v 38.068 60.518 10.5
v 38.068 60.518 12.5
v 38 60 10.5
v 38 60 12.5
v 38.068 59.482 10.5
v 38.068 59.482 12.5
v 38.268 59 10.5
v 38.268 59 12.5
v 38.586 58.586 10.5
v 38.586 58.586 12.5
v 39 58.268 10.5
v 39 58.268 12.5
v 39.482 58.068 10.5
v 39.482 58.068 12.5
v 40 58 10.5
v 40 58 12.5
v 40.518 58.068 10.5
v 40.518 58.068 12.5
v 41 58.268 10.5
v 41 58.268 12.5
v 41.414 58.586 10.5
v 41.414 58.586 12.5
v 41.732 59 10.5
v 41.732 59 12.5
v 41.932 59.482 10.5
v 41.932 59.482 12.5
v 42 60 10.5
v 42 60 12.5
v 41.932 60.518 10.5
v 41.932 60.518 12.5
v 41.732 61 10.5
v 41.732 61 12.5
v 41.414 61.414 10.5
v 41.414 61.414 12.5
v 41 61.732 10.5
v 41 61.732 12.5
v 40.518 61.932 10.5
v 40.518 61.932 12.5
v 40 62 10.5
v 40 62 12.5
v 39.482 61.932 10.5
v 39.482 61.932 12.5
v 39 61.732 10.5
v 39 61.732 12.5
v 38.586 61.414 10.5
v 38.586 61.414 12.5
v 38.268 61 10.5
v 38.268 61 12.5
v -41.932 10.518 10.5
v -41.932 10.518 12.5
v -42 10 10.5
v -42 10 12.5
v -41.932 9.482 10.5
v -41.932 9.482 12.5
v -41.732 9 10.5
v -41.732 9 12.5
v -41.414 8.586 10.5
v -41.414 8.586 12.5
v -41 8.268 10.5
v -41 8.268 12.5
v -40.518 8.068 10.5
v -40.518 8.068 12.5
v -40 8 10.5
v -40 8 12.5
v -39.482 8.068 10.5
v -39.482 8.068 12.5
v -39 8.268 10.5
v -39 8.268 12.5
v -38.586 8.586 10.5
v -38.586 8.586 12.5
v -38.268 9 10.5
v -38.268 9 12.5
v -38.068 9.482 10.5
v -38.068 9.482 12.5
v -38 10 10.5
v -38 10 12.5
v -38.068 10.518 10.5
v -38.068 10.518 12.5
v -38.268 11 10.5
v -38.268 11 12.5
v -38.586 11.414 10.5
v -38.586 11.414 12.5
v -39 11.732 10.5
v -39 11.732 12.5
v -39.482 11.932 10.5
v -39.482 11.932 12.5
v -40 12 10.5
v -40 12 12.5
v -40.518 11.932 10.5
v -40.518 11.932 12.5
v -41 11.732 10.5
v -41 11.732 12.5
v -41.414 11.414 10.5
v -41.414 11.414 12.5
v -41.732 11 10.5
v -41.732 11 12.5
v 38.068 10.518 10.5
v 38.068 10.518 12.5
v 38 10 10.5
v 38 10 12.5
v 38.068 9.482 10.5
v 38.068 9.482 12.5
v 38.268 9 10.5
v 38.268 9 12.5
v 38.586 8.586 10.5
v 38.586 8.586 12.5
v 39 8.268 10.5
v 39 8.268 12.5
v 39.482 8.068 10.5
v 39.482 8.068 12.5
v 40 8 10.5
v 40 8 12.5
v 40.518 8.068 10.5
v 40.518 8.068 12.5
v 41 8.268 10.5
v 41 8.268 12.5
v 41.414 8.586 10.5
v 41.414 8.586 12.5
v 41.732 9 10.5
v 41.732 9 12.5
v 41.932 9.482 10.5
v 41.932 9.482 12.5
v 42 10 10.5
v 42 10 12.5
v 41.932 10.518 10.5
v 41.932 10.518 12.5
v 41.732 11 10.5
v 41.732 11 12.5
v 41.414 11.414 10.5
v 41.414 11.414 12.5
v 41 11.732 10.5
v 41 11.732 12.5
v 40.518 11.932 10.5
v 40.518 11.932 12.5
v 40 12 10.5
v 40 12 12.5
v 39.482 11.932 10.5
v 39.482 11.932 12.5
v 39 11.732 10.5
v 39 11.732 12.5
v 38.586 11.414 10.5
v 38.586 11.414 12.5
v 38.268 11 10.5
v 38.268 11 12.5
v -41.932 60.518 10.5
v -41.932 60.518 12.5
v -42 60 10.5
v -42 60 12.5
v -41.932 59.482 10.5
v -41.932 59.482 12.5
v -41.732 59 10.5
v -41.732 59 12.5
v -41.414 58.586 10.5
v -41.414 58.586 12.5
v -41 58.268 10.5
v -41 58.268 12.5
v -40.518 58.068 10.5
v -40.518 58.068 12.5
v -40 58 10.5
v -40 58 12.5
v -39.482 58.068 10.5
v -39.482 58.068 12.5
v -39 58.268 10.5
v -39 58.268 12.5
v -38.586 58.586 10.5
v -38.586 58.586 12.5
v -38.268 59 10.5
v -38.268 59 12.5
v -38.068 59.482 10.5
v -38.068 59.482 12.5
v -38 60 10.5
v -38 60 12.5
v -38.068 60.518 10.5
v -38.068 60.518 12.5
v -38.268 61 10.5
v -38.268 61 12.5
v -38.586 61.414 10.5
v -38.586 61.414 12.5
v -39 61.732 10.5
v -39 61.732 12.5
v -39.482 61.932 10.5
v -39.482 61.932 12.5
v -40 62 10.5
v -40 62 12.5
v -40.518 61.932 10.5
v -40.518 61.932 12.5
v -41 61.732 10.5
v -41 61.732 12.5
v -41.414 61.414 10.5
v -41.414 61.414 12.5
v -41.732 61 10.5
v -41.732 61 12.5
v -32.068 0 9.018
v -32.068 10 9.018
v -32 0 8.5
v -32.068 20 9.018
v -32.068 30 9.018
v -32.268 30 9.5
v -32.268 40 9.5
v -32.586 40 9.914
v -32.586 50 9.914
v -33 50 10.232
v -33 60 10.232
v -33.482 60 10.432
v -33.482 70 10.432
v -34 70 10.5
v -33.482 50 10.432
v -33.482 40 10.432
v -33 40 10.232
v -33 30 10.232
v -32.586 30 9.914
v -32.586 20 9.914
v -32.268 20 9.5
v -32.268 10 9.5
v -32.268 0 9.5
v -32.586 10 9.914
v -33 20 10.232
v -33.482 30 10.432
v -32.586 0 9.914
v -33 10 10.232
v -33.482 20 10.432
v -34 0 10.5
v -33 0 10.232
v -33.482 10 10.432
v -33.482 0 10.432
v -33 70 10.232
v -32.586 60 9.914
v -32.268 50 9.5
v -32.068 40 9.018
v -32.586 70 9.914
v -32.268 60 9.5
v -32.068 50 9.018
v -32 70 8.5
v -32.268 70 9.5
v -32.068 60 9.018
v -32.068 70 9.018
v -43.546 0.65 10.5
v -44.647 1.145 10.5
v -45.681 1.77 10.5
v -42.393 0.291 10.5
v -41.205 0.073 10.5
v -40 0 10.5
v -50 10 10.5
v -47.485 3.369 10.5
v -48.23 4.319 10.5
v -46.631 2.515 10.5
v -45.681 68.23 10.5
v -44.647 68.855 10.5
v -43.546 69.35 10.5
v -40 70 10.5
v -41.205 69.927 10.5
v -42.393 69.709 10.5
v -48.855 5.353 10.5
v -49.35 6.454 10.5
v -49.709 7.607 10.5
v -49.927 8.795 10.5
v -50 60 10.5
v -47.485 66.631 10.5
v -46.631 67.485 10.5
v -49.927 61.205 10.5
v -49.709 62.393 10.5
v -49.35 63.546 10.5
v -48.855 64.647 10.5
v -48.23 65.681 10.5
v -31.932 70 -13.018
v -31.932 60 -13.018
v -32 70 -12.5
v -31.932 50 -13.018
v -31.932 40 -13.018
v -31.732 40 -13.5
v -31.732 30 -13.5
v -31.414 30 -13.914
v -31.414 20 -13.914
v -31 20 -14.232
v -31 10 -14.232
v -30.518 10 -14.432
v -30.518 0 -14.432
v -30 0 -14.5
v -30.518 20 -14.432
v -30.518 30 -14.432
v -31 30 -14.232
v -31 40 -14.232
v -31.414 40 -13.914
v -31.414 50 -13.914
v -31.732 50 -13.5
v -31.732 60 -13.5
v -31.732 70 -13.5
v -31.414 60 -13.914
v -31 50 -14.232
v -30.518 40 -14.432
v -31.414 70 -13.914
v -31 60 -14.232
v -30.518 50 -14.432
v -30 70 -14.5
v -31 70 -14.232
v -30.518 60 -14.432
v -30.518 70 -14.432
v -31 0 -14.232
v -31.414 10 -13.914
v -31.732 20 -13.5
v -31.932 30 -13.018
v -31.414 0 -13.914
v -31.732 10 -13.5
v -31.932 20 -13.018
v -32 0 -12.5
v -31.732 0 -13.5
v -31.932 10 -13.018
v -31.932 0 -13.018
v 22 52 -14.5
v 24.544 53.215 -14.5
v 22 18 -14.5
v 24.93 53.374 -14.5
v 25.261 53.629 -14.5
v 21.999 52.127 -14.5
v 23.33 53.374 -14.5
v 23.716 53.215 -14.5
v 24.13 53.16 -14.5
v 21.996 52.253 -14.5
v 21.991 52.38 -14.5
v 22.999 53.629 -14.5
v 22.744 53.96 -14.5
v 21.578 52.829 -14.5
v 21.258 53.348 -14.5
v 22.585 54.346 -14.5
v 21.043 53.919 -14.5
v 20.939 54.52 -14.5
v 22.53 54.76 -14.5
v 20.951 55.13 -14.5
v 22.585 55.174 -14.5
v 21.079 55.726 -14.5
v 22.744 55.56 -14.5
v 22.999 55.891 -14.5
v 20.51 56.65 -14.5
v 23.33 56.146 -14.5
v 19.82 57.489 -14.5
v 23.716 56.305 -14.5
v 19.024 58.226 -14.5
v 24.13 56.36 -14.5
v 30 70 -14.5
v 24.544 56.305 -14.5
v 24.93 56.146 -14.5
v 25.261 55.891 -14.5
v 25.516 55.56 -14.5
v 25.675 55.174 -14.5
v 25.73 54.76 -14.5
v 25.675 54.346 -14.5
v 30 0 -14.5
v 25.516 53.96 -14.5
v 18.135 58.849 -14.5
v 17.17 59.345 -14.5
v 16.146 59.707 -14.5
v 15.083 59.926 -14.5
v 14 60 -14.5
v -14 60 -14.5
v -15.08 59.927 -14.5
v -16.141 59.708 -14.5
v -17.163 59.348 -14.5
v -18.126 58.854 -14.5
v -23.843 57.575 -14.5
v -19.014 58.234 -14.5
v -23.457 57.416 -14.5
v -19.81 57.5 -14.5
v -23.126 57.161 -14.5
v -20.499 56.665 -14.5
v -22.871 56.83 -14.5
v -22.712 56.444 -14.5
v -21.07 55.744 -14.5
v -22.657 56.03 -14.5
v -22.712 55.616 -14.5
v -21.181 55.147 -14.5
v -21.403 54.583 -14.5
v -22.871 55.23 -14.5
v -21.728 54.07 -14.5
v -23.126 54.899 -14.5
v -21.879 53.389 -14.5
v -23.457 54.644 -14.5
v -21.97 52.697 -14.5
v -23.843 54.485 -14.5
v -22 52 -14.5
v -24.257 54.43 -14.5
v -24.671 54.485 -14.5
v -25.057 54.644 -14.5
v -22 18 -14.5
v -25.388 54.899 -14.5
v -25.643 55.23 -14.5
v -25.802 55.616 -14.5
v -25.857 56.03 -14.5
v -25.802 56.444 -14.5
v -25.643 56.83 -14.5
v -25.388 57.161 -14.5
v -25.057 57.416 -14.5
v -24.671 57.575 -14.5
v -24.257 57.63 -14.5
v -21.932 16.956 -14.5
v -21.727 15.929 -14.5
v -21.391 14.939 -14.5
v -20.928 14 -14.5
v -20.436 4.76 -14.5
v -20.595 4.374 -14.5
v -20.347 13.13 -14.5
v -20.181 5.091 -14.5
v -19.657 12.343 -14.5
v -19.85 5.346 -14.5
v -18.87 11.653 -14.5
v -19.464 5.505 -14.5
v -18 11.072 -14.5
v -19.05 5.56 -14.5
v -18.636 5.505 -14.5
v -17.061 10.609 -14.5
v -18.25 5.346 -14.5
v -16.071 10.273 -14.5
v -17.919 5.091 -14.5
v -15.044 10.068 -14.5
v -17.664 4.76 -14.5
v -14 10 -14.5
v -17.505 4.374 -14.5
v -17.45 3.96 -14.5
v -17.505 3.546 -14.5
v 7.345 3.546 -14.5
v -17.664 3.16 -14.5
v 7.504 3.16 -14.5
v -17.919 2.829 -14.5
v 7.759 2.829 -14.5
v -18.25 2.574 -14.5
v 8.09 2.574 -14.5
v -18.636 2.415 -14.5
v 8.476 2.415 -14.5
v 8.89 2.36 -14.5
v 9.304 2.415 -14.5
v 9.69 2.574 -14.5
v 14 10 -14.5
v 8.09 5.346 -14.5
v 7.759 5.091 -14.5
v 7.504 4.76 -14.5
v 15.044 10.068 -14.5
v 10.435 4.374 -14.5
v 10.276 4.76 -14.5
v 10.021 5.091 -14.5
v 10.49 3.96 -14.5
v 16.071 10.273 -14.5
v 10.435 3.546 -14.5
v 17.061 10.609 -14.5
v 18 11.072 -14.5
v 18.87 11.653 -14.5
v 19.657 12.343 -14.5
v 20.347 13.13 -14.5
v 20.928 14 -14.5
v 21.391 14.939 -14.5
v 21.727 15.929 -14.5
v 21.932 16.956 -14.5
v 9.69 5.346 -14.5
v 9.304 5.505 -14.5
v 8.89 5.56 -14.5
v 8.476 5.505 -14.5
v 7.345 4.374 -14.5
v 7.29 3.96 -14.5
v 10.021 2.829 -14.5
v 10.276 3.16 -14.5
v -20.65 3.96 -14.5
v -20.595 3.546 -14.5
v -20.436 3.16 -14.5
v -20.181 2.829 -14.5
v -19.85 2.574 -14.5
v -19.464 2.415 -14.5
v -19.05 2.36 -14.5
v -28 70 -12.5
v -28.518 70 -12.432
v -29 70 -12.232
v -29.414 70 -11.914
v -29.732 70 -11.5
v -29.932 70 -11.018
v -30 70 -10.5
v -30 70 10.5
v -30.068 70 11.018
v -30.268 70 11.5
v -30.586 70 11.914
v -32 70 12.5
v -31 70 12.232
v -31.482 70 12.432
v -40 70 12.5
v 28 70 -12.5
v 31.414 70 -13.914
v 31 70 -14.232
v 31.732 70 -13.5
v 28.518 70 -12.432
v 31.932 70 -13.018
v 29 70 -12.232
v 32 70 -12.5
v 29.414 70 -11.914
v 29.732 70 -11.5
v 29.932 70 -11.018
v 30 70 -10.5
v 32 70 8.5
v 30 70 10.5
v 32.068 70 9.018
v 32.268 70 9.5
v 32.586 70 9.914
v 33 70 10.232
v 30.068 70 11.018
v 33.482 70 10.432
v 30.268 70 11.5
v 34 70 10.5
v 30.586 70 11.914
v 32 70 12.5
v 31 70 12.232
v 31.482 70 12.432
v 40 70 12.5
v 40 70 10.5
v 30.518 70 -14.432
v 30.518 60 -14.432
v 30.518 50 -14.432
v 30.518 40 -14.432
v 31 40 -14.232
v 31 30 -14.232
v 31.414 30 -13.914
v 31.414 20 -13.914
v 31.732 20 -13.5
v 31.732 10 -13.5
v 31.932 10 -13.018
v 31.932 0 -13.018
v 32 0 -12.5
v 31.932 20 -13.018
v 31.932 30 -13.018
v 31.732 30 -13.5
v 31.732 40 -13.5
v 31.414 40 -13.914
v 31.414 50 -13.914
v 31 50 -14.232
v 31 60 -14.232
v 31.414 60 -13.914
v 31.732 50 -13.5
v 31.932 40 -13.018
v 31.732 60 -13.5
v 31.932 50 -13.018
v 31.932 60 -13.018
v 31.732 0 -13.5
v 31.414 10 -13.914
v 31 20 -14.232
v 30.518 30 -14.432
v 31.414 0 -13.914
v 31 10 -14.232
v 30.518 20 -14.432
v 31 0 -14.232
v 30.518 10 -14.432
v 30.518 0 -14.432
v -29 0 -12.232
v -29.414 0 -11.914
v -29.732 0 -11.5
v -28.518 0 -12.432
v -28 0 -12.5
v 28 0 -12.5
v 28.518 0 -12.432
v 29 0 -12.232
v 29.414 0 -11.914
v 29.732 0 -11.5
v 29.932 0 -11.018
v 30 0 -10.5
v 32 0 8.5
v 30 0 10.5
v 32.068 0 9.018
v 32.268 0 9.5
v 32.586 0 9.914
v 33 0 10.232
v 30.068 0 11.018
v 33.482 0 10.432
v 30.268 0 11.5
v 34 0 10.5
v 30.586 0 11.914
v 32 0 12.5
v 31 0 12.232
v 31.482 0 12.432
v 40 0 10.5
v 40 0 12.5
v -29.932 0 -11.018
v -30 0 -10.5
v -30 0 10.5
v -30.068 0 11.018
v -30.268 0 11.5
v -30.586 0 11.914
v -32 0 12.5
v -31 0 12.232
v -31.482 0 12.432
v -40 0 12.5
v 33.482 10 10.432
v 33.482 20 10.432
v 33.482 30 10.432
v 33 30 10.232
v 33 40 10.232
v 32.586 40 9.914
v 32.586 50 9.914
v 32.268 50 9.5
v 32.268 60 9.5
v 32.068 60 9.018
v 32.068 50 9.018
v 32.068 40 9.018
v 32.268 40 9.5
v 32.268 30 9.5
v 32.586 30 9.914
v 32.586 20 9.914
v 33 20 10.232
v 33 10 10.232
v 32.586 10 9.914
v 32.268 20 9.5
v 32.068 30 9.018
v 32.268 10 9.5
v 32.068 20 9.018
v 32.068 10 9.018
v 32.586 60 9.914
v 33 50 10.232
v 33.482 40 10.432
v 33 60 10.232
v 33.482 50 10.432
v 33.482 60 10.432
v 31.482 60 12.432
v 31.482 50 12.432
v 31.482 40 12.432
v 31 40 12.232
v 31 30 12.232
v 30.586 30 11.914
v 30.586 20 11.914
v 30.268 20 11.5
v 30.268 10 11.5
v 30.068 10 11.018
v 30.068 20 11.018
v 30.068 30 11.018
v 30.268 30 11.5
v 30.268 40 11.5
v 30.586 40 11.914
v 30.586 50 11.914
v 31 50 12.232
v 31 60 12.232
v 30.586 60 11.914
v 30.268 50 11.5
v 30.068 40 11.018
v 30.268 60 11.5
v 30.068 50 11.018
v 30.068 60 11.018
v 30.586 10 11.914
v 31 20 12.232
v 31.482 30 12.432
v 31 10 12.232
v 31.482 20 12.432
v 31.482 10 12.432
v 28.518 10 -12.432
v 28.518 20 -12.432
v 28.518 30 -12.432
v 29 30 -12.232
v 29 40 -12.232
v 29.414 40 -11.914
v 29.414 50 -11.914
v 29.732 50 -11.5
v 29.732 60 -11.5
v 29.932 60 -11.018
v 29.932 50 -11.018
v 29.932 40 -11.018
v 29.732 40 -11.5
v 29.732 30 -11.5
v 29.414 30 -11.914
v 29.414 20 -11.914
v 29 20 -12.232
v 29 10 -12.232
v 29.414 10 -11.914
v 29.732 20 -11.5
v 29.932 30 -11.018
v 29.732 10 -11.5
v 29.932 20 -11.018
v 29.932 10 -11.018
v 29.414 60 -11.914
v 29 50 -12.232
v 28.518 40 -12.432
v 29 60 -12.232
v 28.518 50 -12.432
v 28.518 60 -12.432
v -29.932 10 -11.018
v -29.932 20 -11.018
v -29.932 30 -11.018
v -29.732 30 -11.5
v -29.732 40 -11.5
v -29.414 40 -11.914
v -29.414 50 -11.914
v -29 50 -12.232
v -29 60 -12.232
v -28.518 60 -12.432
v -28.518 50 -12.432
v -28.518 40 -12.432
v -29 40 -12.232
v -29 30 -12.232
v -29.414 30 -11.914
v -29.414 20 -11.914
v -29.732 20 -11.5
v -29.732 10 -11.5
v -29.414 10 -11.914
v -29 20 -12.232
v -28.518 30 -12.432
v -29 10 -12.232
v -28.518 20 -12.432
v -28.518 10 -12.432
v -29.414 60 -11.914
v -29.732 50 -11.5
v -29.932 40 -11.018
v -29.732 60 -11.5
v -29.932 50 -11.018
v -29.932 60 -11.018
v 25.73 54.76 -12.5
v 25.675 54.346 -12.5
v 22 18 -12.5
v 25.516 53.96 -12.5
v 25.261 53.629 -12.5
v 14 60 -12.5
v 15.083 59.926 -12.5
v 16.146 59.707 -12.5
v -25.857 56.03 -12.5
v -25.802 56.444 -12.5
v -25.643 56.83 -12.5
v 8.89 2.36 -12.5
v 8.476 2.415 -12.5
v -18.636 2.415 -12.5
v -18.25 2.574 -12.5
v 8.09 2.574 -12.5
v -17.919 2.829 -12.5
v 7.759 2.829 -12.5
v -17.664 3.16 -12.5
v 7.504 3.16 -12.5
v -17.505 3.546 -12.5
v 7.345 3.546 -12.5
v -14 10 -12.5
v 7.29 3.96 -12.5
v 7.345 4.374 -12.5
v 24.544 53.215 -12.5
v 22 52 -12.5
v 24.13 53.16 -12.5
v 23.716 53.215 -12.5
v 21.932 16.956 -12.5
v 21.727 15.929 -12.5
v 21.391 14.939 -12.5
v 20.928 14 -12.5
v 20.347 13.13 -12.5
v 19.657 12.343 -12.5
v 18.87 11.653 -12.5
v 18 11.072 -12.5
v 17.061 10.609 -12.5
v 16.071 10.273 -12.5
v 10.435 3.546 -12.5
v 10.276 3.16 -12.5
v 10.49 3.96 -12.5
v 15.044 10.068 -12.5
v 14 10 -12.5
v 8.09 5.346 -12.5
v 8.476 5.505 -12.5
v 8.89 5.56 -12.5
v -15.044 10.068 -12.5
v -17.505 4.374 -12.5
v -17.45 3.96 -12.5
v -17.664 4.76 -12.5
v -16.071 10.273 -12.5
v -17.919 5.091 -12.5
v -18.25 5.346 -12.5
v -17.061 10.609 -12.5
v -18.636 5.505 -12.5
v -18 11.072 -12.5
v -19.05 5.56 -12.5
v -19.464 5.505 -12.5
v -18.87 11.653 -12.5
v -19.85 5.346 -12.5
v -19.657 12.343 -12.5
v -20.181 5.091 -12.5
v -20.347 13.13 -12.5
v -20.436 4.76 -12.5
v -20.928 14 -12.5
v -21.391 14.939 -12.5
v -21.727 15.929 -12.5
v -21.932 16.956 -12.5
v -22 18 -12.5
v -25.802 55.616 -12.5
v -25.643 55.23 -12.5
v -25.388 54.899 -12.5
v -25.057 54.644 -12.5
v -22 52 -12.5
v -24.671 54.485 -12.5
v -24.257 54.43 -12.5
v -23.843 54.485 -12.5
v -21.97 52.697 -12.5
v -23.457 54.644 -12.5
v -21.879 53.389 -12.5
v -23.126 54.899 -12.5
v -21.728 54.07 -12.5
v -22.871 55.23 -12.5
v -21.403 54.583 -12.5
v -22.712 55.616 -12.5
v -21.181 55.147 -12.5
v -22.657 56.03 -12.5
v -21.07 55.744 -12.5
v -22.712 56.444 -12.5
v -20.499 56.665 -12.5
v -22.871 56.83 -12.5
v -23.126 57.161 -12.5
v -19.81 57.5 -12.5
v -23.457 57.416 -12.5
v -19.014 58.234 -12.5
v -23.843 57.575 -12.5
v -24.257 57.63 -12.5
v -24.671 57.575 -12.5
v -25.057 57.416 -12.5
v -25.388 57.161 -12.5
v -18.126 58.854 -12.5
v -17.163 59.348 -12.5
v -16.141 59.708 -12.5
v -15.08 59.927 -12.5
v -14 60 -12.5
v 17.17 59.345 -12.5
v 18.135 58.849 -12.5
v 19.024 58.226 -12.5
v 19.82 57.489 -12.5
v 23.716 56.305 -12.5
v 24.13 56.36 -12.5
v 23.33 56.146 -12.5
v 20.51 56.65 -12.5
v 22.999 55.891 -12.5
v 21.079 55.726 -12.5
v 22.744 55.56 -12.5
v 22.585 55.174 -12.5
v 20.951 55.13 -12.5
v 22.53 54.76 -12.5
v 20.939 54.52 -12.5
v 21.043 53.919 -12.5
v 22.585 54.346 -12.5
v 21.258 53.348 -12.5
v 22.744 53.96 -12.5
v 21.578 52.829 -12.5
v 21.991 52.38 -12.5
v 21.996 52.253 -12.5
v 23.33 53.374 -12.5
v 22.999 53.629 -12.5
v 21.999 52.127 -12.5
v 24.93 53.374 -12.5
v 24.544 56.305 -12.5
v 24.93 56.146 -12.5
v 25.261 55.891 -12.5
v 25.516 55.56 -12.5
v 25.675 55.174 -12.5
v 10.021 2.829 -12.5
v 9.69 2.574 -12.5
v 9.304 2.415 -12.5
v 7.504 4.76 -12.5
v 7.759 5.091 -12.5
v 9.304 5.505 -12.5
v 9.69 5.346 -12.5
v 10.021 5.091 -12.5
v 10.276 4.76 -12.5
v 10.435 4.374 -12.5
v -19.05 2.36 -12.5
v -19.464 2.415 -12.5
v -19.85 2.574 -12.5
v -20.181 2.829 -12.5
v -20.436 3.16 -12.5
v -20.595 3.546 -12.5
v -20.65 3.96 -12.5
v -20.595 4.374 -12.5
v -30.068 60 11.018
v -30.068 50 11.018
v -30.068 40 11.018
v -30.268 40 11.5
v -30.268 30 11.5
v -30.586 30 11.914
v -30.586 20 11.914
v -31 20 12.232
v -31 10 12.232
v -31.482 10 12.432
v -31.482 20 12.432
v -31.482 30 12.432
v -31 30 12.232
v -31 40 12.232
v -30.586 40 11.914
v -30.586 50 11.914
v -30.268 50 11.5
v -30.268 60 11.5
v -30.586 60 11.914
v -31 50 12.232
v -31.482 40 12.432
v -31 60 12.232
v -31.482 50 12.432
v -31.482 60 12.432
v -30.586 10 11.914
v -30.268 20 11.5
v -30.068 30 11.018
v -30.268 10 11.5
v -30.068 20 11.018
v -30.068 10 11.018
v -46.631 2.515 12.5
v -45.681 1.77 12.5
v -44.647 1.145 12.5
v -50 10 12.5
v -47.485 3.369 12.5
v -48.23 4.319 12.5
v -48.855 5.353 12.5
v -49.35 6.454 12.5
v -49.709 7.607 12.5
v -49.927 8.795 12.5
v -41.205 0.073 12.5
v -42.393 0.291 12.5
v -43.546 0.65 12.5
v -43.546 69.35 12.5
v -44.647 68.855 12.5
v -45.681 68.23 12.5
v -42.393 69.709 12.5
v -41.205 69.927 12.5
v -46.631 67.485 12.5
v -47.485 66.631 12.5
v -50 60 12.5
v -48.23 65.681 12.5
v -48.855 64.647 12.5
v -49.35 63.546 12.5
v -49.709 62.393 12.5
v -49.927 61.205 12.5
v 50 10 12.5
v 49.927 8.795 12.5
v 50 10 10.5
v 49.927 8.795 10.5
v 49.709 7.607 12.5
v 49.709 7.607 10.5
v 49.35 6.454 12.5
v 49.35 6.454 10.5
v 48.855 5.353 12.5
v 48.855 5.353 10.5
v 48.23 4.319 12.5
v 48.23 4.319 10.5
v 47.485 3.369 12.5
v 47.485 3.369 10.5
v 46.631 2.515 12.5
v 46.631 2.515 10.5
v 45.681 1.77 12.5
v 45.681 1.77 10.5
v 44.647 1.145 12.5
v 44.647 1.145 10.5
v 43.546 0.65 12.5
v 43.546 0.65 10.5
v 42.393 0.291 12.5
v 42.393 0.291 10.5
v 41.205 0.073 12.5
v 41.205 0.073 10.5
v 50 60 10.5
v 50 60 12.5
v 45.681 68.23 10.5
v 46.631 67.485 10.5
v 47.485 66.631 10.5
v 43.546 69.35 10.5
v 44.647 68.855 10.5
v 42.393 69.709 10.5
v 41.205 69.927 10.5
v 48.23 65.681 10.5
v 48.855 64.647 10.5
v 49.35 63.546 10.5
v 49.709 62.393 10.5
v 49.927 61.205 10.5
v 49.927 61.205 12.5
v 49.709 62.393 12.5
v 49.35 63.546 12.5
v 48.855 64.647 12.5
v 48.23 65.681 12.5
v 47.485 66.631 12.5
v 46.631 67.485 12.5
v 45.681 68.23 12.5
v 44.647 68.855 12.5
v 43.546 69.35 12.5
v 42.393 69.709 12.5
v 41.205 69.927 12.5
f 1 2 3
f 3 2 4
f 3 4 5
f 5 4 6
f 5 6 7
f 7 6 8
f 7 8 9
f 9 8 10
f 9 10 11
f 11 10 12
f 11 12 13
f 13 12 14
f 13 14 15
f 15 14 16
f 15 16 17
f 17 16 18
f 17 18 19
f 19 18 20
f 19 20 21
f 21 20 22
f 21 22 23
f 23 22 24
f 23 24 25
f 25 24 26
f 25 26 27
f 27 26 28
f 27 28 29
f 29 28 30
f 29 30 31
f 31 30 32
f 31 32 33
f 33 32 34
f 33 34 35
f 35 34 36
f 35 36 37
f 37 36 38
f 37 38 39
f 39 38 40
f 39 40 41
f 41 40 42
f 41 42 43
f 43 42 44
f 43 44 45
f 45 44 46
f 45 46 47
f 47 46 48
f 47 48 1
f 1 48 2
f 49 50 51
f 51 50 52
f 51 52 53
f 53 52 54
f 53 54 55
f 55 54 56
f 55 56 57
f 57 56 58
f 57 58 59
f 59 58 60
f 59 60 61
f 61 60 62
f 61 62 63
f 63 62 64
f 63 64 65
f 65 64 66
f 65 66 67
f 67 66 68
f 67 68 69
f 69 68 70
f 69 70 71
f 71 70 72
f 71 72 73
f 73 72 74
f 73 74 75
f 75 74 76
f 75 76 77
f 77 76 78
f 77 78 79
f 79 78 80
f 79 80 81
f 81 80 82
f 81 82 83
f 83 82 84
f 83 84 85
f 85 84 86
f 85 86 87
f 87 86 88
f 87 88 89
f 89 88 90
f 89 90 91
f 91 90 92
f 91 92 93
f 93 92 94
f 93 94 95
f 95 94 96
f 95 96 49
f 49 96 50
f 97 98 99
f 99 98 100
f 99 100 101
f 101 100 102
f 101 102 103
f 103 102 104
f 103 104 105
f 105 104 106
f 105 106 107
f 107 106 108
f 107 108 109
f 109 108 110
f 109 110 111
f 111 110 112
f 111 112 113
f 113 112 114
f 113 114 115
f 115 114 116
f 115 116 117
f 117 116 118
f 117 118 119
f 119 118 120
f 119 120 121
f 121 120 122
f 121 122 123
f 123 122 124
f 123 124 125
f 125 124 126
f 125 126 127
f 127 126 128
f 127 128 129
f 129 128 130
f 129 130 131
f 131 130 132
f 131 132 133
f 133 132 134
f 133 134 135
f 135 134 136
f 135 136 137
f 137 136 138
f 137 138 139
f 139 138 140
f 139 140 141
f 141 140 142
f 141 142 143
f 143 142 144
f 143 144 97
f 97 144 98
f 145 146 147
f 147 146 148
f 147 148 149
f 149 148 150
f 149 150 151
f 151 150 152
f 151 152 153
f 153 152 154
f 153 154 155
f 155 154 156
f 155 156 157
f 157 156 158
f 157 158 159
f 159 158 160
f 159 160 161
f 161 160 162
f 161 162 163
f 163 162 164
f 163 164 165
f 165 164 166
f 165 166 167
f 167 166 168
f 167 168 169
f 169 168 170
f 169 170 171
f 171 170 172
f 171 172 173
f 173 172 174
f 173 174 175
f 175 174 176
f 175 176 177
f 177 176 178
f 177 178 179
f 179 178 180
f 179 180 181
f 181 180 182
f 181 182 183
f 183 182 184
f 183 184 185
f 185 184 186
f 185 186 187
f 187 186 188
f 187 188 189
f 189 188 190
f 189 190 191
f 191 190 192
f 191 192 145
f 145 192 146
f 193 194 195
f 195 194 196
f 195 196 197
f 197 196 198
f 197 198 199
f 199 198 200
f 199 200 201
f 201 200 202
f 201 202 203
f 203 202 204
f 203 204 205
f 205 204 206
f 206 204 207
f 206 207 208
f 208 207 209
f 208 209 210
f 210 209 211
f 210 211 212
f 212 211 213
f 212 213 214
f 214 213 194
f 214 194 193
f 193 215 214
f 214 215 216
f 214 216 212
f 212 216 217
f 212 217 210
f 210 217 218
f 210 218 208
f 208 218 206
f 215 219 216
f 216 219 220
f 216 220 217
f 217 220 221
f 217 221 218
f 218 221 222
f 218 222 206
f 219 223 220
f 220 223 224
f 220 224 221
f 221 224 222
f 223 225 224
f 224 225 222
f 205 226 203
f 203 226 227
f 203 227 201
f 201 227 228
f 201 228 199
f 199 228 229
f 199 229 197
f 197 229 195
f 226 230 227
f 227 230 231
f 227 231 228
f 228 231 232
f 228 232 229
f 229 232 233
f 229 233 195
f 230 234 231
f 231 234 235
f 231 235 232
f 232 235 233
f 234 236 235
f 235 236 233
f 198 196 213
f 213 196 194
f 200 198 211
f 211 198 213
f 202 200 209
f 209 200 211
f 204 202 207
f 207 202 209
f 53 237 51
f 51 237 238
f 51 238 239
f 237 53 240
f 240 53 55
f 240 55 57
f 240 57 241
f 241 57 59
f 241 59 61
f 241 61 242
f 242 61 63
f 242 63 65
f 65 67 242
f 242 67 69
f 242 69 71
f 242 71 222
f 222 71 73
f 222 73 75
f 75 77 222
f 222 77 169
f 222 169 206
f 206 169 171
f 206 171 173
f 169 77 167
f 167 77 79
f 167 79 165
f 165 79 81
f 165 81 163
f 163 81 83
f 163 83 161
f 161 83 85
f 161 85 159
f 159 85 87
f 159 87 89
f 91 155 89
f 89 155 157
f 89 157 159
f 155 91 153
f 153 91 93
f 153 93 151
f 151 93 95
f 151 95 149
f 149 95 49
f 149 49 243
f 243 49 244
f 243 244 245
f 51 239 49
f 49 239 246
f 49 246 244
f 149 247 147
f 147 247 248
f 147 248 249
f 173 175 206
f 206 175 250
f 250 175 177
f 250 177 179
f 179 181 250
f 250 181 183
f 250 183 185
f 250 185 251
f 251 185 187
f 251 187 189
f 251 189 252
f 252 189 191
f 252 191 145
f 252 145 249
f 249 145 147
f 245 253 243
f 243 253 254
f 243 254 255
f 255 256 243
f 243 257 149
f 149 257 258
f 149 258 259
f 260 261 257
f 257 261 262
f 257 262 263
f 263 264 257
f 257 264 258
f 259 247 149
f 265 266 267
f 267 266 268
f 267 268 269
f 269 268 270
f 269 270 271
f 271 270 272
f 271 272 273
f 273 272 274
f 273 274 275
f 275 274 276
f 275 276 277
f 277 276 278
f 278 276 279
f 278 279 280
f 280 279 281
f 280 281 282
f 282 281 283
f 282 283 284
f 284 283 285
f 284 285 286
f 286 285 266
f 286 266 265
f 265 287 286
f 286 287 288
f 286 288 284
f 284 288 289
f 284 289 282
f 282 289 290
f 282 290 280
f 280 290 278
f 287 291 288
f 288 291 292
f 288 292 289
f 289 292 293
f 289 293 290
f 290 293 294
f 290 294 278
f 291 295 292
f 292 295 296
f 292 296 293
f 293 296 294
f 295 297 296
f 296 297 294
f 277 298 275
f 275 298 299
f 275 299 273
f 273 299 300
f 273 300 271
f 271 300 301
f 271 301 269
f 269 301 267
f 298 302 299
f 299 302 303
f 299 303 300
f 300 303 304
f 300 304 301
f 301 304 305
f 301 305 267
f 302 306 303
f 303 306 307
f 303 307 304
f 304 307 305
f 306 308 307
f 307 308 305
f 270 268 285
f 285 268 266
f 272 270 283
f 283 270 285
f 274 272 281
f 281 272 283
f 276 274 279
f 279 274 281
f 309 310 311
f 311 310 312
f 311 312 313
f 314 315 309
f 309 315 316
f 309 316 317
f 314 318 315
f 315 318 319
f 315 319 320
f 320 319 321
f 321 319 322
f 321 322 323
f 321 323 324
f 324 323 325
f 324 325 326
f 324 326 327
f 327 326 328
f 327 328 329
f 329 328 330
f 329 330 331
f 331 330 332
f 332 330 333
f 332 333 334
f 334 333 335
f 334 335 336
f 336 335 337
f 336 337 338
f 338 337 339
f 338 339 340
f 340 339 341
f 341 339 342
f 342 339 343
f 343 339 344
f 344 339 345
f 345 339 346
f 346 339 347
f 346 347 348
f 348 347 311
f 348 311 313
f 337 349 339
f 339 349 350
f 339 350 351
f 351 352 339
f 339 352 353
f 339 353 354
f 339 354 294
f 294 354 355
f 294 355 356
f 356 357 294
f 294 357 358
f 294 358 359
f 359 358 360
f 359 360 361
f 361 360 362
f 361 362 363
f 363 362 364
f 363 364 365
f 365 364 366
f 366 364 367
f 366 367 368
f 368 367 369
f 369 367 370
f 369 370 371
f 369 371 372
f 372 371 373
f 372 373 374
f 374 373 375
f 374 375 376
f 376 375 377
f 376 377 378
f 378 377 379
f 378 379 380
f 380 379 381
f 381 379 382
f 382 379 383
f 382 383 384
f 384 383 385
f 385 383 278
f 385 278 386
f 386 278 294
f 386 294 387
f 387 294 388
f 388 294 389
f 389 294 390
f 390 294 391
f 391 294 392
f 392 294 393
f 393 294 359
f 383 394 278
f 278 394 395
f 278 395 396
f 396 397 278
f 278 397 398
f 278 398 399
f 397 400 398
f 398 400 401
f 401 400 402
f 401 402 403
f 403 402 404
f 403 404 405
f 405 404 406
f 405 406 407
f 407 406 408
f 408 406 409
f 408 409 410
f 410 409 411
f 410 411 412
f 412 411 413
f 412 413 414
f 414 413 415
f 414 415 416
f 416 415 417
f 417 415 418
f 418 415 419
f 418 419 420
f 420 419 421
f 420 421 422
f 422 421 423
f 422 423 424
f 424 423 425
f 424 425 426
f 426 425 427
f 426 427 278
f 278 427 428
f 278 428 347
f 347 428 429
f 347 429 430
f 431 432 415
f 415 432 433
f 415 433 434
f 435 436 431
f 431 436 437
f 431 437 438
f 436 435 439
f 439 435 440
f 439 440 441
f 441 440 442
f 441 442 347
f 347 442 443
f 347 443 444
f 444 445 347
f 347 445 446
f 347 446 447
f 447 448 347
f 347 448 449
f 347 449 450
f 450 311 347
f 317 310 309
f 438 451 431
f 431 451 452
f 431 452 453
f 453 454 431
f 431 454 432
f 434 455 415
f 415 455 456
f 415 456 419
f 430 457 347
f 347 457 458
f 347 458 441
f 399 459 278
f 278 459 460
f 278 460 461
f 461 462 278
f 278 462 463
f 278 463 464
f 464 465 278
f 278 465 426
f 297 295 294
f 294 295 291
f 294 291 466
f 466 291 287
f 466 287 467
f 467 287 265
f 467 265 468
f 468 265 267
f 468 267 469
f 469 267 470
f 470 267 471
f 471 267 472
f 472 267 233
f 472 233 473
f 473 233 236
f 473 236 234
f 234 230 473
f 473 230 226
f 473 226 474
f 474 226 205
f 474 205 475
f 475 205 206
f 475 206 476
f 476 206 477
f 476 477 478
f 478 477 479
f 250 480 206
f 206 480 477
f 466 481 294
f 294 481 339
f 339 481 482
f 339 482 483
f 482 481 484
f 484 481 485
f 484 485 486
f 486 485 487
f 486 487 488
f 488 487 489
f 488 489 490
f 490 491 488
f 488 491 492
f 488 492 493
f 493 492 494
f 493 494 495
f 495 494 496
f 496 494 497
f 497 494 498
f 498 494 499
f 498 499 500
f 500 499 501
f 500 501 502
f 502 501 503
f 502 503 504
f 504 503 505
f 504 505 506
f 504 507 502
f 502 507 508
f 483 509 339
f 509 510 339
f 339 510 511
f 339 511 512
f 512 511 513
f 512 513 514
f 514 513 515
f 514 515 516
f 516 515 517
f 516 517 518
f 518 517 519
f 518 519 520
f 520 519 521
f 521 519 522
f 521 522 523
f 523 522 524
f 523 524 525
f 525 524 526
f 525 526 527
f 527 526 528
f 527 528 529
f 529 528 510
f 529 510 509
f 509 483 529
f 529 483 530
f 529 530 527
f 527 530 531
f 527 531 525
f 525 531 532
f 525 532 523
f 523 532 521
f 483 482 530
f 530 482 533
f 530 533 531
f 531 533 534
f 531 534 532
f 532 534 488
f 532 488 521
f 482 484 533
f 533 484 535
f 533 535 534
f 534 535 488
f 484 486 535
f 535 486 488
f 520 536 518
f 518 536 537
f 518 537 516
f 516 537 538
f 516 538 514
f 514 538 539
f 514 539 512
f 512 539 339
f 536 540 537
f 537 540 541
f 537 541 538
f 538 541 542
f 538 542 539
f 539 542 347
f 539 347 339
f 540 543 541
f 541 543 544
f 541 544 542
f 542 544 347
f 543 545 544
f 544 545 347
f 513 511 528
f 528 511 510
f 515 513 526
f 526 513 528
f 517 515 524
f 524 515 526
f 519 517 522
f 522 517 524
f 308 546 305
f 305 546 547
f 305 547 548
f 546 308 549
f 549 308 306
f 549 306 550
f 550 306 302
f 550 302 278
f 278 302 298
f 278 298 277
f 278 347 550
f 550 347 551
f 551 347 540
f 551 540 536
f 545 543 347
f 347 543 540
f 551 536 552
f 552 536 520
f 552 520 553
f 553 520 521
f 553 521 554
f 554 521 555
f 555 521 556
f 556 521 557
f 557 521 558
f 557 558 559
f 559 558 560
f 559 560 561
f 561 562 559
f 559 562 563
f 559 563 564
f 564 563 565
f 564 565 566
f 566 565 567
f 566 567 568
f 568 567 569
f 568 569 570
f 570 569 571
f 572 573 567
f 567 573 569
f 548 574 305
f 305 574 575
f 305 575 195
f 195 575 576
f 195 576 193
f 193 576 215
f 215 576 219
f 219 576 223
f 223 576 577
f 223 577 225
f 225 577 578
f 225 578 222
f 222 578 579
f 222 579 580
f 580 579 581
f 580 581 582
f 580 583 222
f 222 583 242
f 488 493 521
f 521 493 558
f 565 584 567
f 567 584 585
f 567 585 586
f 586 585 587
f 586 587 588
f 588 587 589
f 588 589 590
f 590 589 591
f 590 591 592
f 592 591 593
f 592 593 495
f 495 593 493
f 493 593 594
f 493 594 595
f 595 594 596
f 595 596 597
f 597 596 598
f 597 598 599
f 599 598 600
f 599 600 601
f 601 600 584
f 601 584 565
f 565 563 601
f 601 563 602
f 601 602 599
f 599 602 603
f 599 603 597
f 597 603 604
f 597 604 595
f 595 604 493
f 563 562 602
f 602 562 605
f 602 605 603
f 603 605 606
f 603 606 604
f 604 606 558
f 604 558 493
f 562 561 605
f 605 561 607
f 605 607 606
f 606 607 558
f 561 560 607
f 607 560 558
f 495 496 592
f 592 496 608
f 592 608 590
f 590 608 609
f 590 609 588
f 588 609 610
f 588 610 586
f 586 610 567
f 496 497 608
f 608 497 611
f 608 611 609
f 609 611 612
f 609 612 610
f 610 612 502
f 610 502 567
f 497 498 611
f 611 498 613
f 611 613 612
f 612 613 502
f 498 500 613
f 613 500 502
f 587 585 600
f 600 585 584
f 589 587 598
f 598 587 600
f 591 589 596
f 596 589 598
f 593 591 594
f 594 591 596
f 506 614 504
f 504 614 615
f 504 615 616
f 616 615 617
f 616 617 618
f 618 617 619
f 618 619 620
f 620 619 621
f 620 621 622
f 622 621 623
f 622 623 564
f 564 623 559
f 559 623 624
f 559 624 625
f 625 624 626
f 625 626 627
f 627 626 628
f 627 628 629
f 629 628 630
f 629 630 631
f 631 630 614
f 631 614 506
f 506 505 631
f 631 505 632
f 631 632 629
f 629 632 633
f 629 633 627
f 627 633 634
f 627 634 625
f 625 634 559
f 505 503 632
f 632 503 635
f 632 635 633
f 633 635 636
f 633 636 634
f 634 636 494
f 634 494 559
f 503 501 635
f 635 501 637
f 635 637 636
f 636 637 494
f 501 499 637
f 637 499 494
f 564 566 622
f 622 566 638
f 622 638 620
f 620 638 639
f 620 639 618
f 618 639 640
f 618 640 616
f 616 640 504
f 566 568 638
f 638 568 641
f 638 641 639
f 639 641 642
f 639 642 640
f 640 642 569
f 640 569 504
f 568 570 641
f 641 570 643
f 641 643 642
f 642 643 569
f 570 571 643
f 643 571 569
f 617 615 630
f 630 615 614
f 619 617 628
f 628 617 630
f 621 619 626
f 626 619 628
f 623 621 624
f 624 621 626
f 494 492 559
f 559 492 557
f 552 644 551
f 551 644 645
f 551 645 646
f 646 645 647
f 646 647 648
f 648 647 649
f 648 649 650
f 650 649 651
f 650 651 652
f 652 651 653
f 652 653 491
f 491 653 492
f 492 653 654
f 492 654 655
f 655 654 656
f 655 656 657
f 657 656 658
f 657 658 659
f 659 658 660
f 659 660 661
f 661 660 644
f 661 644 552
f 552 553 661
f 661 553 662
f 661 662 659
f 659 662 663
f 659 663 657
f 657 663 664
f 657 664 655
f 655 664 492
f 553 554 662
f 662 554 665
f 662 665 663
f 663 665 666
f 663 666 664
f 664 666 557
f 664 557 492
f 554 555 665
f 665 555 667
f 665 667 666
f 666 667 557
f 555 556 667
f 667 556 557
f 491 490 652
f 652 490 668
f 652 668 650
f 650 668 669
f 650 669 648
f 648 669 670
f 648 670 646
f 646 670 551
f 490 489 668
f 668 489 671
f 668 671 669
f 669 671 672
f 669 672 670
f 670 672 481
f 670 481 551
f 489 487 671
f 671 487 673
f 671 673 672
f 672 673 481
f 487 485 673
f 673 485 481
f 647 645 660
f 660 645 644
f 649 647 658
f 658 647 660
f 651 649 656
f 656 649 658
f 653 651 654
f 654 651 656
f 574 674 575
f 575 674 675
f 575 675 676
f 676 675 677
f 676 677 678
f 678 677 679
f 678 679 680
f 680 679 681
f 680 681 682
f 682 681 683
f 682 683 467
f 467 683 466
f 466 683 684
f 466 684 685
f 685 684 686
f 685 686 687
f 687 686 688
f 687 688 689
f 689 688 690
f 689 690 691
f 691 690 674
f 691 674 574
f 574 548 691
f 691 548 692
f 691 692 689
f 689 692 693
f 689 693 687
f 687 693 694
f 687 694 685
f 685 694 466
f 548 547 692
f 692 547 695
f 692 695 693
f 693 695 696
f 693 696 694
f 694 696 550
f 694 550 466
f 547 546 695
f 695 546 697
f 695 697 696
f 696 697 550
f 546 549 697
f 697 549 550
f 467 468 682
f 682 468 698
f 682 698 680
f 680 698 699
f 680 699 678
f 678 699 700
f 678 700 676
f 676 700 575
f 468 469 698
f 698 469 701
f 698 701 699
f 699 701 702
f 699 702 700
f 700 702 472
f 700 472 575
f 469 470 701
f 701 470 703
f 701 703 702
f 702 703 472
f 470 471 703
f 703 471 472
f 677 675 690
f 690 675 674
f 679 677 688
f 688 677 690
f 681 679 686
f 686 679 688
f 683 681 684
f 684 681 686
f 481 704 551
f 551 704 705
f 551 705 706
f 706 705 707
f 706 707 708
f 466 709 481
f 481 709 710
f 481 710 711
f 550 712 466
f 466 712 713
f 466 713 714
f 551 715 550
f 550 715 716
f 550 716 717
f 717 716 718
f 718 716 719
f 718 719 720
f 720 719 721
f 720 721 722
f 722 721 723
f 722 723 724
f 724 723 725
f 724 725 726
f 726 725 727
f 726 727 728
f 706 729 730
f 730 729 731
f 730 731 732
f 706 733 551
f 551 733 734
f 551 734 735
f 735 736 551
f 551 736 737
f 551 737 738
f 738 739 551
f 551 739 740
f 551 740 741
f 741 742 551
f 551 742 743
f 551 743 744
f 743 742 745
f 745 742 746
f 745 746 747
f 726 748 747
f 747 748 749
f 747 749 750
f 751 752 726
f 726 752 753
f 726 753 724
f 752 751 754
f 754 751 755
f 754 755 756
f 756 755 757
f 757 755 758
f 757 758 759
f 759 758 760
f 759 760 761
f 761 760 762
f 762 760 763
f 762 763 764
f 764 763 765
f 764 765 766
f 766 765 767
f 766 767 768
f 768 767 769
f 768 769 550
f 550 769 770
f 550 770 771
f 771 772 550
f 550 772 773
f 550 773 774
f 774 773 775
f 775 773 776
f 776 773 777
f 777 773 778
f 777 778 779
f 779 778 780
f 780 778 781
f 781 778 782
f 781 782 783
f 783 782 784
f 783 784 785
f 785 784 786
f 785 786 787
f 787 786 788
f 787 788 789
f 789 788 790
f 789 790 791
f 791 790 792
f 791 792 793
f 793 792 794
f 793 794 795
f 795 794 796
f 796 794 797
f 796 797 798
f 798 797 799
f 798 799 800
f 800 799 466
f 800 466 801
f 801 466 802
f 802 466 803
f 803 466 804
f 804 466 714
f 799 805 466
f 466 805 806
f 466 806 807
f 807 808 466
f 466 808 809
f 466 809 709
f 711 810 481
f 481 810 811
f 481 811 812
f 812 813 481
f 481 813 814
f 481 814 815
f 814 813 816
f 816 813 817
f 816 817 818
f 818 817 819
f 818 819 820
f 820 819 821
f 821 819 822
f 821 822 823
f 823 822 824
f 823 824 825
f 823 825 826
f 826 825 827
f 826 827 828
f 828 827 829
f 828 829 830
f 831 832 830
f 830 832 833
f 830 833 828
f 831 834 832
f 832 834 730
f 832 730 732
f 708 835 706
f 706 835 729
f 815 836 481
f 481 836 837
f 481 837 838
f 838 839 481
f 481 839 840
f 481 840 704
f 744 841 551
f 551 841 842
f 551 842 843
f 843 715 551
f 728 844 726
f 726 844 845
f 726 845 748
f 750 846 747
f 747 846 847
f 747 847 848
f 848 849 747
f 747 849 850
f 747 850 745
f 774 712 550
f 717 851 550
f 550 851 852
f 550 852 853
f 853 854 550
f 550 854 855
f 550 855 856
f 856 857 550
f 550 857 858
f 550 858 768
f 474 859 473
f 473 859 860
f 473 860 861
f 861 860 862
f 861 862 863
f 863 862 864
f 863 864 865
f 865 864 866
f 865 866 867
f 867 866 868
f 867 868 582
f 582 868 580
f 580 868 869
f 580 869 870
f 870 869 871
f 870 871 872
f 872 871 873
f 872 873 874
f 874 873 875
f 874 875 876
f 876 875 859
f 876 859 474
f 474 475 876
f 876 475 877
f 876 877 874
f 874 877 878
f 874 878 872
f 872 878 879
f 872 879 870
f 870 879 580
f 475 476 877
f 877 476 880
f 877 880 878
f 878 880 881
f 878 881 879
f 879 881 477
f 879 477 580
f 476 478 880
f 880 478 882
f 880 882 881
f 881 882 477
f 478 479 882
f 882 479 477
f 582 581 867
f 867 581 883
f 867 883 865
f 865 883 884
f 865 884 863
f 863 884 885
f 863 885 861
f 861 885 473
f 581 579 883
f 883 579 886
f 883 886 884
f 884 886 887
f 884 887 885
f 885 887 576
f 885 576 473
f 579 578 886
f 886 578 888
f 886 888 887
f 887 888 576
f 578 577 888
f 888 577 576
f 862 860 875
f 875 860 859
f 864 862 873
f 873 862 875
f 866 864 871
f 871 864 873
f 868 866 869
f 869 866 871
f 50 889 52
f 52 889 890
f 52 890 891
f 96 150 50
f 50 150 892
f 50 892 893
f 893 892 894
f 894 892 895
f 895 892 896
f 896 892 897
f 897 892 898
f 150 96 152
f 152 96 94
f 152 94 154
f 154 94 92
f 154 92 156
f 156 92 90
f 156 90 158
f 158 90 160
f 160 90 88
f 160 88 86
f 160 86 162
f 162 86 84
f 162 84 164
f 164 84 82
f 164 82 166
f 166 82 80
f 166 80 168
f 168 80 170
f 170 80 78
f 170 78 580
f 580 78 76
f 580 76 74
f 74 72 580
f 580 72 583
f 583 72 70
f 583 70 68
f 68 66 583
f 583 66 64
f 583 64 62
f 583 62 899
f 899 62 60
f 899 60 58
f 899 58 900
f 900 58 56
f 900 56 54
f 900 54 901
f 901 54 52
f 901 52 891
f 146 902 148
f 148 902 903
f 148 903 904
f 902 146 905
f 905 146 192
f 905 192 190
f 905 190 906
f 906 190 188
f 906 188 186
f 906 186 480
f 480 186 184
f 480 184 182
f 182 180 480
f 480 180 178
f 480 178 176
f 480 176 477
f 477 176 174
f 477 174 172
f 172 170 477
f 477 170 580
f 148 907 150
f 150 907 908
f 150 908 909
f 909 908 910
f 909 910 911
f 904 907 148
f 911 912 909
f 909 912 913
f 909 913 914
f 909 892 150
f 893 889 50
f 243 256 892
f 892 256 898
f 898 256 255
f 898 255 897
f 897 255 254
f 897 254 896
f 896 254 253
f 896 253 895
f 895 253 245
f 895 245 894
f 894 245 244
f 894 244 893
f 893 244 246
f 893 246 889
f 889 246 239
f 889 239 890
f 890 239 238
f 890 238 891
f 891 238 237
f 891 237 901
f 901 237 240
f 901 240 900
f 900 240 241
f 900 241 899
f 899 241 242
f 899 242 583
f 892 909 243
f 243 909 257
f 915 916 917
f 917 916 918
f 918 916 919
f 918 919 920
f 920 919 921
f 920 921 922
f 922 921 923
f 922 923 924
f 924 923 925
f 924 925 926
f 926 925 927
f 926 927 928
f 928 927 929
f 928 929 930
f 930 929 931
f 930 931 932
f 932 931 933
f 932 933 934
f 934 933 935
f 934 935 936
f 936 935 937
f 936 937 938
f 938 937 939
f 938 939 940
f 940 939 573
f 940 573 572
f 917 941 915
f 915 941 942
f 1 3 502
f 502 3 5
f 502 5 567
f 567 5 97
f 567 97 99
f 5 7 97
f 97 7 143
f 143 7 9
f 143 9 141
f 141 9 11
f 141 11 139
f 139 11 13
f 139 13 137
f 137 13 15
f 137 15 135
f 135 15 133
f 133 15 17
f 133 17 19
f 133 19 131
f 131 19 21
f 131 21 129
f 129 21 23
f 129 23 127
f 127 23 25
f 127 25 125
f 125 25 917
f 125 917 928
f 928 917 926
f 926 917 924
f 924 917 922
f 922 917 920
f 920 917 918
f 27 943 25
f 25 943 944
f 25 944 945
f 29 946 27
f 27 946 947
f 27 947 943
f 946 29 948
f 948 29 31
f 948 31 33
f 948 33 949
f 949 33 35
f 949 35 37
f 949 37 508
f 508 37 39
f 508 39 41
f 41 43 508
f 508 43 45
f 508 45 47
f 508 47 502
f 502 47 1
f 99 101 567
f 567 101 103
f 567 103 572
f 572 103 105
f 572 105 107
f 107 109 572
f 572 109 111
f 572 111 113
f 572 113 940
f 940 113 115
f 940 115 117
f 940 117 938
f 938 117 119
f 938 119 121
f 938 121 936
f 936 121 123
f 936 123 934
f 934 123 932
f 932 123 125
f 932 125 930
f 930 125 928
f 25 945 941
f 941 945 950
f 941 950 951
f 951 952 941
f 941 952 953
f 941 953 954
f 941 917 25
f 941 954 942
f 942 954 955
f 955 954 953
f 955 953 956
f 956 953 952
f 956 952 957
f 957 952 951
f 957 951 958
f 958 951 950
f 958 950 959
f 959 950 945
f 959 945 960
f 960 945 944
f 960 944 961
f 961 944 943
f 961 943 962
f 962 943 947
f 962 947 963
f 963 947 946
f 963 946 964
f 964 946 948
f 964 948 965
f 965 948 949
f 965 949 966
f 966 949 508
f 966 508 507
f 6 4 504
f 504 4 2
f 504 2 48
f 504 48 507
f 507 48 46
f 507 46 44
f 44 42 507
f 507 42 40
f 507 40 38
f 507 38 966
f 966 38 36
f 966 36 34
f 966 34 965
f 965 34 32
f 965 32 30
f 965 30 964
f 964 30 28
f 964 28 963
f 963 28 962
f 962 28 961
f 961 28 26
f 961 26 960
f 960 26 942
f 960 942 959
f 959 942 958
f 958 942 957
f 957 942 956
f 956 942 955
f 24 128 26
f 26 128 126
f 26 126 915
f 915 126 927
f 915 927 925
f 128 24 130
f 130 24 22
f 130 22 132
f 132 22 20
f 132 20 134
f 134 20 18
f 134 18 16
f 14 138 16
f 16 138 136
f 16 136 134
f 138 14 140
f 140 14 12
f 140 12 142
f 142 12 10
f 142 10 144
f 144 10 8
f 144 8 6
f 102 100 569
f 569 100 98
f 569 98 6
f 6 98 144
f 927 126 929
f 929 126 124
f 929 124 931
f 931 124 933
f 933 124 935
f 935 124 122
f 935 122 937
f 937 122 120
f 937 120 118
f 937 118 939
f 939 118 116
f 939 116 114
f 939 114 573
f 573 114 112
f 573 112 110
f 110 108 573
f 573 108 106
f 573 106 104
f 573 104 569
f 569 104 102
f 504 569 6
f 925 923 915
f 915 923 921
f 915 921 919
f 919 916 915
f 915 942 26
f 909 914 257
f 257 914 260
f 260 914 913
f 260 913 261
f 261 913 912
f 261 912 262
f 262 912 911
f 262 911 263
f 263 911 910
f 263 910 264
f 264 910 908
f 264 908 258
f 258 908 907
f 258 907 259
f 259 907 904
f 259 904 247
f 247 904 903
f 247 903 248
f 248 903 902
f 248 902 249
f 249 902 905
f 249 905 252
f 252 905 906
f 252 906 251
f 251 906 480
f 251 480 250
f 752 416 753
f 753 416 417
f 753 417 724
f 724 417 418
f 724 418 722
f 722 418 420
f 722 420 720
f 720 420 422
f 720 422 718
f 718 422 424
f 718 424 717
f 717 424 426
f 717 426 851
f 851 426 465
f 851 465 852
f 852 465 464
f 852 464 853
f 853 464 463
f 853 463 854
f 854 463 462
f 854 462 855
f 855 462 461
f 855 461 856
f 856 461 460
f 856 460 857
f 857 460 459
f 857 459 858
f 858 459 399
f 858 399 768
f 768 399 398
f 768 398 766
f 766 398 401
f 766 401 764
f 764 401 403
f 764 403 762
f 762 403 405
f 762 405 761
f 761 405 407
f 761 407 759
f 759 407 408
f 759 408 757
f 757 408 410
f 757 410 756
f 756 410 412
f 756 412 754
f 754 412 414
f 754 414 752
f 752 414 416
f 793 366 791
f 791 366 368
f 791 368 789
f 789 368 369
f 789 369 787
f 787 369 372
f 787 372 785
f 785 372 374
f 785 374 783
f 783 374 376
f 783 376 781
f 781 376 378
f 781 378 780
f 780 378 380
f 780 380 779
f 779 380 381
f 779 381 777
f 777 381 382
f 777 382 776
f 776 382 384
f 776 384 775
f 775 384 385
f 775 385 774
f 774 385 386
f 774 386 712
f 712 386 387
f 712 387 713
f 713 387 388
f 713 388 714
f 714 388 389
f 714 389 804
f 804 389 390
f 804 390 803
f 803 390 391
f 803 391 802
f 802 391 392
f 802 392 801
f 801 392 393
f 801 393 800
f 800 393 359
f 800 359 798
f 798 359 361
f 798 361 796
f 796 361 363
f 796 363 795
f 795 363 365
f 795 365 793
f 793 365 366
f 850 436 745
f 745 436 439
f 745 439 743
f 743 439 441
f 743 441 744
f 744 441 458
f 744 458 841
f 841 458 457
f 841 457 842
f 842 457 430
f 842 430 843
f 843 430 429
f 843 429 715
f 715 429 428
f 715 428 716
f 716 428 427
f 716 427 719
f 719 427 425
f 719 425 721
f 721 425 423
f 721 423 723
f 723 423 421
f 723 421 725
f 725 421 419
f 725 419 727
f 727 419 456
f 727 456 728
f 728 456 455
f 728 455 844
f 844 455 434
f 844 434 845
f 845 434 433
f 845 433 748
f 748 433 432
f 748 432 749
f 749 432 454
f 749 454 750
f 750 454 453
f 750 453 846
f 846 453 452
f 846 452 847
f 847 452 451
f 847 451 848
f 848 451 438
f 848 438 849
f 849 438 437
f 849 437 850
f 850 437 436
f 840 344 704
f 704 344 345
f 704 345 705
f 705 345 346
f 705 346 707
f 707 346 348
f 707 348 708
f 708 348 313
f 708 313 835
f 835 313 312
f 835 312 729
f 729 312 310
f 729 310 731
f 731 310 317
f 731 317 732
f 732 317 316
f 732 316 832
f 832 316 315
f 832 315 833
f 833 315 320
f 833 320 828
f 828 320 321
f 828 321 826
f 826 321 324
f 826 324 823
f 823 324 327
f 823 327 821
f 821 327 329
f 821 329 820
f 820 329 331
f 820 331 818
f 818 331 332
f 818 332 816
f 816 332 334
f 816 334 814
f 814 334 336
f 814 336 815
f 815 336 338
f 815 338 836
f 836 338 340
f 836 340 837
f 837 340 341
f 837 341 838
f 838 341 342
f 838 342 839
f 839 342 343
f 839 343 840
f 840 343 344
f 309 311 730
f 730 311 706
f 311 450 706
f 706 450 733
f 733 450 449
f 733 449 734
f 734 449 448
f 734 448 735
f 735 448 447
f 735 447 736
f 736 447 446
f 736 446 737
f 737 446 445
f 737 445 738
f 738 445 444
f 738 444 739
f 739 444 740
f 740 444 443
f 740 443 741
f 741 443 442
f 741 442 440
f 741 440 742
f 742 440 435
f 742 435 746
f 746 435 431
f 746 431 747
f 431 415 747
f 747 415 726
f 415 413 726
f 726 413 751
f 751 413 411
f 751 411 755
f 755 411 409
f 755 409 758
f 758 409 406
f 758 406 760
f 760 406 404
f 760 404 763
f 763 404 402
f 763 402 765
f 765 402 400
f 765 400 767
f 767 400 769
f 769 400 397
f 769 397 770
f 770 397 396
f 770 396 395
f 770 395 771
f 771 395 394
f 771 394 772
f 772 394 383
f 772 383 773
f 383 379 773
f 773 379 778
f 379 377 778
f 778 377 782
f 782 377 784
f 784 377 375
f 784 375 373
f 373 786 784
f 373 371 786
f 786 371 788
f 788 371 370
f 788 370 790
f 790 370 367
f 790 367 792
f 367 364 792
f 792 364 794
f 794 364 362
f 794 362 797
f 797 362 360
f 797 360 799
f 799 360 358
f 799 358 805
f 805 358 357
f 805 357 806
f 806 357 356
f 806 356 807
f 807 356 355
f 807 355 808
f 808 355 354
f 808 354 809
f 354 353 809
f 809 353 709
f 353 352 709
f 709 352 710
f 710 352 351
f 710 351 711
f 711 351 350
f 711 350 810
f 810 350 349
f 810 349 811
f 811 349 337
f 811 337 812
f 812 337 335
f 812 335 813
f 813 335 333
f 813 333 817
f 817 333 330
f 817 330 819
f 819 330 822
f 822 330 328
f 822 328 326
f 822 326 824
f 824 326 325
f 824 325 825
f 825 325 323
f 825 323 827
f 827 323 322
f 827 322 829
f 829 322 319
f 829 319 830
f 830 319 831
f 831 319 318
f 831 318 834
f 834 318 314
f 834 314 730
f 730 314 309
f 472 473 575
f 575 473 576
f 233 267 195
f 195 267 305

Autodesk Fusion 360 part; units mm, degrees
sketch "Sketch1" plane through (0, 0, 0) normal (0, 1, 0) x (1, 0, 0)
  line L0 (30, 12.5) -> (-30, 12.5)
  line L1 (-30, 12.5) -> (-30, -12.5)
  line L2 (-30, -12.5) -> (30, -12.5)
  line L3 (30, -12.5) -> (30, 12.5)
  line L4 (30, 12.5) -> (-30, -12.5) construction
  line L5 (-30, 12.5) -> (30, -12.5) construction
  line L6 (-30, -12.5) -> (-50, -12.5)
  line L7 (-50, -12.5) -> (-50, -10.5)
  line L8 (-50, -10.5) -> (-32, -10.5)
  line L9 (-32, -10.5) -> (-32, 14.5)
  line L10 (-32, 14.5) -> (32, 14.5)
  line L11 (32, 14.5) -> (32, -10.5)
  line L12 (32, -10.5) -> (50, -10.5)
  line L13 (50, -10.5) -> (50, -12.5)
  line L14 (50, -12.5) -> (30, -12.5)
  dimension "d1" = 60
  dimension "d2" = 25
  dimension "d3" = 20
  dimension "d4" = 2
  dimension "d6" = 18
  dimension "d7" = 25
  dimension "d8" = 64
  dimension "d9" = 25
  dimension "d10" = 2
extrude "Extrude1" add sketch "Sketch1" along normal blind 70 contours L0 L1 L3 L6 L7 L8 L9 L10 L11 L12 L13 L14
sketch "Sketch2" plane through (0, 0, -14.5) normal (0, 0, -1) x (-1, 0, 0)
  line L0 (-32, 0) -> (32, 0)
  line L1 (32, 0) -> (32, 70)
  line L2 (32, 70) -> (-32, 70)
  line L3 (-32, 70) -> (-32, 0)
  line L4 (0, 70) -> (0, 0) construction
  line L5 (0, 70) -> (0, 54.76) construction
  line L6 (0, 54.76) -> (0, 56.03)
  line L7 (0, 56.03) -> (24.257, 56.03) construction
  line L8 (0, 54.76) -> (-24.13, 54.76) construction
  circle A0 centre (-24.13, 54.76) radius 1.6
  circle A1 centre (24.257, 56.03) radius 1.6
  line L9 (-24.13, 54.76) -> (-24.13, 3.96) construction
  line L10 (-24.13, 3.96) -> (-8.89, 3.96) construction
  circle A2 centre (-8.89, 3.96) radius 1.6
  line L11 (-8.89, 3.96) -> (19.05, 3.96) construction
  circle A3 centre (19.05, 3.96) radius 1.6
  circle A4 centre (-24.13, 54.76) radius 3.2
  circle A5 centre (24.257, 56.03) radius 3.2
  line L12 (-14, 10) -> (14, 10)
  line L13 (22, 18) -> (22, 52)
  line L14 (14, 60) -> (-14, 60)
  line L15 (-22, 52) -> (-22, 18)
  arc A6 (-14, 60) -> (-22, 52) centre (-14, 52) ccw
  arc A7 (22, 52) -> (14, 60) centre (14, 52) ccw
  arc A8 (14, 10) -> (22, 18) centre (14, 18) ccw
  arc A9 (-22, 18) -> (-14, 10) centre (-14, 18) ccw
  dimension "d13" = 15.24
  dimension "d16" = 1.27
  dimension "d19" = 24.257
  dimension "d20" = 24.13
  dimension "d21" = 3.2
  dimension "d22" = 3.2
  dimension "d23" = 50.8
  dimension "d24" = 15.24
  dimension "d25" = 3.2
  dimension "d26" = 27.94
  dimension "d27" = 3.2
  dimension "d41" = 6.4
  dimension "d42" = 6.4
  dimension "d44" = 8
  dimension "d45" = 8
  dimension "d46" = 8
  dimension "d47" = 8
extrude "Extrude4" cut sketch "Sketch2" against normal blind 2 contours A4 A5 L12 L13 L14 L15 A6 A7 A8 A9
extrude "Extrude2" cut sketch "Sketch2" against normal blind 2 contours A0 | A1 | A2 | A3
fillet "Fillet1" radius 10 4 edges at (-50, 70, 11.5) (50, 70, 11.5) (50, 0, 11.5) (-50, 0, 11.5)
fillet "Fillet2" radius 2 8 edges at (-30, 35, 12.5) (-30, 35, -12.5) (30, 35, -12.5) (30, 35, 12.5) (32, 35, 10.5) (32, 35, -14.5) (-32, 35, -14.5) (-32, 35, 10.5)
sketch "Sketch3" plane through (0, 0, 12.5) normal (0, 0, 1) x (1, 0, 0)
  line L0 (32, 70) -> (32, 0)
  line L1 (32, 0) -> (40, 0)
  arc A0 (40, 0) -> (50, 10) centre (40, 10) ccw
  line L2 (50, 10) -> (50, 60)
  arc A1 (50, 60) -> (40, 70) centre (40, 60) ccw
  line L3 (40, 70) -> (32, 70)
  circle A2 centre (40, 60) radius 2
  circle A3 centre (40, 10) radius 2
  line L4 (0, 0) -> (0, 70) construction
  line L5 (40, 60) -> (-40, 60) construction
  line L6 (40, 10) -> (-40, 10) construction
  circle A4 centre (-40, 60) radius 2
  circle A5 centre (-40, 10) radius 2
  dimension "d32" = 4
  dimension "d33" = 4
  dimension "d34" = 80
  dimension "d35" = 80
  dimension "d36" = 4
  dimension "d37" = 4
extrude "Extrude3" cut sketch "Sketch3" against normal blind 2 contours A2 | A3 | A4 | A5
equation "d4 = width"
equation "width = 2 mm"
equation "d6 = 20 mm - width"
equation "d8 = 60 mm + 2 * width"
equation "d10 = width"
equation "d28 = -width"
equation "d38 = -width"
equation "d48 = -width"
